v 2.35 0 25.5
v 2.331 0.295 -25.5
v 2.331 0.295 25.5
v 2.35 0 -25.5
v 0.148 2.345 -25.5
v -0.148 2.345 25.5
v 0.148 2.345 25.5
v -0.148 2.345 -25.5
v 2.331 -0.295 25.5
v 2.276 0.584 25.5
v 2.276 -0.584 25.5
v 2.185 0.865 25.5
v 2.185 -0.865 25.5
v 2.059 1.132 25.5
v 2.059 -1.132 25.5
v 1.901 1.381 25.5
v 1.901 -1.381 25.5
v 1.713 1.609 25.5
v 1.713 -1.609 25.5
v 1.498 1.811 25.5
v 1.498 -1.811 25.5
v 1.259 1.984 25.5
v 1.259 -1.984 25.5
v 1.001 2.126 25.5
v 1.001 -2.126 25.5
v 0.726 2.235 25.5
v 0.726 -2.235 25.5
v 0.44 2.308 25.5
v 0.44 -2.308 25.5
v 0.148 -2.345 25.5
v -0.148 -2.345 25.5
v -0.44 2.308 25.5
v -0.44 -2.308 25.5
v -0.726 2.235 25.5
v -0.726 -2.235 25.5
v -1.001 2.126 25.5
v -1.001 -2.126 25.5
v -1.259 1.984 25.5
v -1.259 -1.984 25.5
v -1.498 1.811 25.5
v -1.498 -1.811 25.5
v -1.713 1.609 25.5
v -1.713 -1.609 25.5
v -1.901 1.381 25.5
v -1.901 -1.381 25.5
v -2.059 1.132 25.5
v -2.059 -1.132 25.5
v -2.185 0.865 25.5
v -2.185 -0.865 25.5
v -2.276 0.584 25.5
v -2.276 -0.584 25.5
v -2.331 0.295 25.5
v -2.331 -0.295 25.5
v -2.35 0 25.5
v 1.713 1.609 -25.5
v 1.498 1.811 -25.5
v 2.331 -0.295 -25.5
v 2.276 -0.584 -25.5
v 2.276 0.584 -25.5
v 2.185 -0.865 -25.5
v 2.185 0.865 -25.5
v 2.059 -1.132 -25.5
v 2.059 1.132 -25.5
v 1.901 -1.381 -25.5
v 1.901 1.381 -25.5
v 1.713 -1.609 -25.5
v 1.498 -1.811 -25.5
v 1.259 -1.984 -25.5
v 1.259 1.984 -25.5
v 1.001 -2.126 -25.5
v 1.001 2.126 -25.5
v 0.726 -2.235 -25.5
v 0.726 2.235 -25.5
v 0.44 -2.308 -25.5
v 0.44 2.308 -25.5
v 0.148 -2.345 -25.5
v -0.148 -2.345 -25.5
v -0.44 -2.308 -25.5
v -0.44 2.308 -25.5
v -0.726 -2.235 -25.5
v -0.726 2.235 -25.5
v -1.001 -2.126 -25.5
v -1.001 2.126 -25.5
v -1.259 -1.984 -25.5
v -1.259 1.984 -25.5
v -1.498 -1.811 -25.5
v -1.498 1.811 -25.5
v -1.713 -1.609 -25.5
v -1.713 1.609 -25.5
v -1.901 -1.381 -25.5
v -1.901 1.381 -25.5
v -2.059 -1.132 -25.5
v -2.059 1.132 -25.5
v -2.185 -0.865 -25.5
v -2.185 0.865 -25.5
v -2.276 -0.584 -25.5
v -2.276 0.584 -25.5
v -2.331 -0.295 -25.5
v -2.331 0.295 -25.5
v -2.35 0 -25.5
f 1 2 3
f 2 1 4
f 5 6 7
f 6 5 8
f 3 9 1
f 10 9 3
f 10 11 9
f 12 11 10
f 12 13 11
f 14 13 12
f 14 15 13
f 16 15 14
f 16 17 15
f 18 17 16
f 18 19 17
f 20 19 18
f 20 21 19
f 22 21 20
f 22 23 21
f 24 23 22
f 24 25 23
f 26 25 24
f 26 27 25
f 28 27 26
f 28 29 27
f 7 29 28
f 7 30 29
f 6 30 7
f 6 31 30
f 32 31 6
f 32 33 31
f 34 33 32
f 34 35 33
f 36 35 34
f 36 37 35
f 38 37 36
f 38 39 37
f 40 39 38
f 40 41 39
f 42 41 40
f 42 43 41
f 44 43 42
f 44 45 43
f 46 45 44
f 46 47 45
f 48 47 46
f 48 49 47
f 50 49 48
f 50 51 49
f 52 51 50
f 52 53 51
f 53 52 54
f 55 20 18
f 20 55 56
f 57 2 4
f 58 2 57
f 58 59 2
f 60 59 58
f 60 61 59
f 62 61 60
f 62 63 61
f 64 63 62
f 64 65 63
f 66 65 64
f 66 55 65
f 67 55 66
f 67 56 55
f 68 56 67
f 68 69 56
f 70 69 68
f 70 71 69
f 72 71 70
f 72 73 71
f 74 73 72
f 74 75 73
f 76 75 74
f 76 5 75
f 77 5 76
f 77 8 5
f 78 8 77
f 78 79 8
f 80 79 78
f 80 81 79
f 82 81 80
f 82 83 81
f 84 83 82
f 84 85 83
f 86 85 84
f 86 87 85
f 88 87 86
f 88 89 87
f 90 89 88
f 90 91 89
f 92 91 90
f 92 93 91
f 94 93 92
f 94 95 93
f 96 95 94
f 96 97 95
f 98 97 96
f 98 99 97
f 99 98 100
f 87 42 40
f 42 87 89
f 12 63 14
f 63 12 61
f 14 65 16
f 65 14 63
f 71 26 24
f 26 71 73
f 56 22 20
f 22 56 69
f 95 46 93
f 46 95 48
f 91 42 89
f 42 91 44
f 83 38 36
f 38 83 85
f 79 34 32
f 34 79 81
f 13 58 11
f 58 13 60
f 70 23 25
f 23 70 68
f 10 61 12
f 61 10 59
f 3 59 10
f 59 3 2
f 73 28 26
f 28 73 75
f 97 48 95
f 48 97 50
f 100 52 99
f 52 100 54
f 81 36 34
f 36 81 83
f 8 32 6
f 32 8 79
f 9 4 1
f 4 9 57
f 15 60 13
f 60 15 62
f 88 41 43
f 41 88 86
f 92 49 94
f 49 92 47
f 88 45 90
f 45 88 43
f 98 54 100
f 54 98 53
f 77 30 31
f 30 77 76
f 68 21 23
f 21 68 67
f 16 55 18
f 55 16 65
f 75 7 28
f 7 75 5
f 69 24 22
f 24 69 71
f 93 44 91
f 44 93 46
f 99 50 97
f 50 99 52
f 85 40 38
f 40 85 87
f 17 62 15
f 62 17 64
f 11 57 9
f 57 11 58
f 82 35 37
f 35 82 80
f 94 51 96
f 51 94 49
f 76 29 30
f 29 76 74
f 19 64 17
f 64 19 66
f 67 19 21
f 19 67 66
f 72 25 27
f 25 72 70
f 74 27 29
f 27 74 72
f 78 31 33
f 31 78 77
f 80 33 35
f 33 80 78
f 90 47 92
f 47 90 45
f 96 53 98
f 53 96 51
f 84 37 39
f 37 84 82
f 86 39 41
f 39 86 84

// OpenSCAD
$fn = 50;


difference() {
	union() {
		translate(v = [0, 0, -25.5000000000]) {
			cylinder(h = 51, r = 2.3500000000);
		}
	}
	union() {
		translate(v = [0, 0, -100.0000000000]) {
			cylinder(h = 200, r = 0);
		}
	}
}
